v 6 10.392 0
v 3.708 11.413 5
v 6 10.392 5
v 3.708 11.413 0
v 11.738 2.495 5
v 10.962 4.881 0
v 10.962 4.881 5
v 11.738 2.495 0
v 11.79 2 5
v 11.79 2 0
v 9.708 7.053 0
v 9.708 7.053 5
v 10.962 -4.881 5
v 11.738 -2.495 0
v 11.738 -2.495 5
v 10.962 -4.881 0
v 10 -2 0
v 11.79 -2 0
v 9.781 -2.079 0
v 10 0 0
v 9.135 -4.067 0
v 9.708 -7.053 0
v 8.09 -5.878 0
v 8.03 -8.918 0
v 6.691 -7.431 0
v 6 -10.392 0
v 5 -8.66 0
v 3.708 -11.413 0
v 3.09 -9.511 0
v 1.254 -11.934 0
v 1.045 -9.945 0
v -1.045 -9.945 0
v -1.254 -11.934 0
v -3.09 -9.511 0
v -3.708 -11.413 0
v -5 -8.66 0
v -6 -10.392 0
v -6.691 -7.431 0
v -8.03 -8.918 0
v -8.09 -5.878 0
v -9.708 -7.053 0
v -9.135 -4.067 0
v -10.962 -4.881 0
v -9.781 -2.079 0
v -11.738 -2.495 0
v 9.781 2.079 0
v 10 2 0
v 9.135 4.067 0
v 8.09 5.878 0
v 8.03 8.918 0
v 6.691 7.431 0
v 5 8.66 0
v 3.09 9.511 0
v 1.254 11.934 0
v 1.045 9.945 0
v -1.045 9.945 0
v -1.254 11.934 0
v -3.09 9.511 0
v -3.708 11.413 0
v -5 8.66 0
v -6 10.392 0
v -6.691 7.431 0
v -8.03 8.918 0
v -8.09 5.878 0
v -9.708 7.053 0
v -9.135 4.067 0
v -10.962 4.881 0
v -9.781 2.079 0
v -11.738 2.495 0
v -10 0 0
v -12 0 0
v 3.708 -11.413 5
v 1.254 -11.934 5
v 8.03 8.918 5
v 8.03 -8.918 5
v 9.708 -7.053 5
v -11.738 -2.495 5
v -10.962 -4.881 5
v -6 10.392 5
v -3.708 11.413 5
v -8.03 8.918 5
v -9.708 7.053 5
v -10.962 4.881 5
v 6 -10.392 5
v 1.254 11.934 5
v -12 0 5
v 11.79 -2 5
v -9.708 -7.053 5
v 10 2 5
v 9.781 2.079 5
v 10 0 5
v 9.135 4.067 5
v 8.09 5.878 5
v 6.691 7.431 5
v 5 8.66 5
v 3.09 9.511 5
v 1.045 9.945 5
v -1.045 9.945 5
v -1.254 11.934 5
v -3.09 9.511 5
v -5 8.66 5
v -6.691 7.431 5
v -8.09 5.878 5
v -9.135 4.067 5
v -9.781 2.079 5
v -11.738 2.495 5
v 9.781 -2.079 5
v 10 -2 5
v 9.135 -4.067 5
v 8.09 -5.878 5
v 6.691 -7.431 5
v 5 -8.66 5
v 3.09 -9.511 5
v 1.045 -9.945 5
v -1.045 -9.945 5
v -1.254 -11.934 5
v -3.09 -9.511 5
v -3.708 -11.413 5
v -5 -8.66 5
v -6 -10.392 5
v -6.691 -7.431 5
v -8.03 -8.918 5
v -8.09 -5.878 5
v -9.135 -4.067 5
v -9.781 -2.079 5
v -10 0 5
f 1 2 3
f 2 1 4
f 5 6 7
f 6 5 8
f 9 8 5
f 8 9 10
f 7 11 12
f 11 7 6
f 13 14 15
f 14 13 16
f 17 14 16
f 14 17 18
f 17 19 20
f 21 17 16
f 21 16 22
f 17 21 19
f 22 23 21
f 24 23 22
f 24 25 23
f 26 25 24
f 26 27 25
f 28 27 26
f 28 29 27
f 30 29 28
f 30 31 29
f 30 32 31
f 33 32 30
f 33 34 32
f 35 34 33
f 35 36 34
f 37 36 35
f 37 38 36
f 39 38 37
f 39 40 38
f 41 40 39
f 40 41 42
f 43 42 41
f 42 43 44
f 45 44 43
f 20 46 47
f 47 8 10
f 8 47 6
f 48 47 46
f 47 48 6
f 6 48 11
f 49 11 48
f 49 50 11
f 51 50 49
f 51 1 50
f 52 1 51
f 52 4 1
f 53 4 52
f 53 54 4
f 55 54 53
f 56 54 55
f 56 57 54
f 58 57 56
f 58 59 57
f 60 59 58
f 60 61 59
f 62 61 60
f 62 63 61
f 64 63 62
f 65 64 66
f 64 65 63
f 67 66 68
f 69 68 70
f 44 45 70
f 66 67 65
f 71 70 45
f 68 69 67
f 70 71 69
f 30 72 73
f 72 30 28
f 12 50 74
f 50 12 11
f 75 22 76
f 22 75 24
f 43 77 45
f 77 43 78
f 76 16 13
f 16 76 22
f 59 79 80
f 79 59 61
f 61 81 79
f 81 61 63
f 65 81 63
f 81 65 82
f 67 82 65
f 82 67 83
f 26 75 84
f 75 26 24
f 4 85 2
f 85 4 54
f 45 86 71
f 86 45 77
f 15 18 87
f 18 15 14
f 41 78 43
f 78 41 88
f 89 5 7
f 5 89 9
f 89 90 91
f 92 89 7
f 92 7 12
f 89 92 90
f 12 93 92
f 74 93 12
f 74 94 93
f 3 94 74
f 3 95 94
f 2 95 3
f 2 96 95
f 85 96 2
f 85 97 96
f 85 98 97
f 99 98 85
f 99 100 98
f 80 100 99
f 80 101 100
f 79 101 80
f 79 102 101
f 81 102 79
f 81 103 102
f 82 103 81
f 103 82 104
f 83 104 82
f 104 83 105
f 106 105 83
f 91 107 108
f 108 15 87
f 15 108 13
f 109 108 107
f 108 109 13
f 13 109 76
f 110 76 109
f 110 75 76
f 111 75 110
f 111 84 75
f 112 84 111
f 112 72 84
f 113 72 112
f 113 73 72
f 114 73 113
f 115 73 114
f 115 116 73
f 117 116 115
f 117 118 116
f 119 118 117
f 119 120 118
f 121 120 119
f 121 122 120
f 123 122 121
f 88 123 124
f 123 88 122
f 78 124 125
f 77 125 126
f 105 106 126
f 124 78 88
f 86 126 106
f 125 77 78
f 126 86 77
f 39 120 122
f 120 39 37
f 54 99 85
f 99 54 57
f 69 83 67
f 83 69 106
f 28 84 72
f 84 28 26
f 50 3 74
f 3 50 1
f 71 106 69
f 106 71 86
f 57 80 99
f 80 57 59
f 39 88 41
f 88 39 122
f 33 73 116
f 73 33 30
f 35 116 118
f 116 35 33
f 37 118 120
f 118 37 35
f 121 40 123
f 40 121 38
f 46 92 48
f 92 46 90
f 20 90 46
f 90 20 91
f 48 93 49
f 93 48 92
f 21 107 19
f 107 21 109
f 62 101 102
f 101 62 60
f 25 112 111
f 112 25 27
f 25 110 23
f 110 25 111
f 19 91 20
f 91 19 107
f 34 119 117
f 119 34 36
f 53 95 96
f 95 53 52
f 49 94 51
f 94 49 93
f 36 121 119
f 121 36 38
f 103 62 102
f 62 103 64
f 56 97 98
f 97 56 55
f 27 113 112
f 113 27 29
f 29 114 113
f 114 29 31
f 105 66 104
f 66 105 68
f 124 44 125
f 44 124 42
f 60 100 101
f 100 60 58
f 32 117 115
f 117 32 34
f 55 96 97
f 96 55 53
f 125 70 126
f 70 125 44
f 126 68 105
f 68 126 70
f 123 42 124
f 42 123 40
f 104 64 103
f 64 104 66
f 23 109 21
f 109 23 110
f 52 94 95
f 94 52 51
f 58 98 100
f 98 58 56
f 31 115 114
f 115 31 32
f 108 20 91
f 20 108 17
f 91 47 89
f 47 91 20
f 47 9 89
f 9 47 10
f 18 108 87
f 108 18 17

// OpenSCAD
// Yarn guide ring with optional integrated tension post
module yarn_guide(
    radius=10,
    thickness=2,
    slot_width=4,
    ring_height=5,
    integrated_post=false,
    post_diameter=5,
    post_height=20,
    base_diameter=14,
    base_height=4,
    post_offset=undef
) {
    outer_radius = radius + thickness;
    slot_height = ring_height + 2;
    offset = is_undef(post_offset) ? outer_radius : post_offset;

    module ring() {
        difference() {
            cylinder(h=ring_height, r=outer_radius);
            cylinder(h=ring_height, r=radius);
            translate([radius, -slot_width / 2, -1])
                cube([outer_radius, slot_width, slot_height]);
        }
    }

    module integrated_post_body() {
        translate([offset, 0, 0]) {
            cylinder(h=base_height, d=base_diameter);
            translate([0, 0, base_height])
                cylinder(h=post_height, d=post_diameter);
        }
    }

    if (integrated_post) {
        union() {
            ring();
            integrated_post_body();
        }
    } else {
        ring();
    }
}

yarn_guide();
